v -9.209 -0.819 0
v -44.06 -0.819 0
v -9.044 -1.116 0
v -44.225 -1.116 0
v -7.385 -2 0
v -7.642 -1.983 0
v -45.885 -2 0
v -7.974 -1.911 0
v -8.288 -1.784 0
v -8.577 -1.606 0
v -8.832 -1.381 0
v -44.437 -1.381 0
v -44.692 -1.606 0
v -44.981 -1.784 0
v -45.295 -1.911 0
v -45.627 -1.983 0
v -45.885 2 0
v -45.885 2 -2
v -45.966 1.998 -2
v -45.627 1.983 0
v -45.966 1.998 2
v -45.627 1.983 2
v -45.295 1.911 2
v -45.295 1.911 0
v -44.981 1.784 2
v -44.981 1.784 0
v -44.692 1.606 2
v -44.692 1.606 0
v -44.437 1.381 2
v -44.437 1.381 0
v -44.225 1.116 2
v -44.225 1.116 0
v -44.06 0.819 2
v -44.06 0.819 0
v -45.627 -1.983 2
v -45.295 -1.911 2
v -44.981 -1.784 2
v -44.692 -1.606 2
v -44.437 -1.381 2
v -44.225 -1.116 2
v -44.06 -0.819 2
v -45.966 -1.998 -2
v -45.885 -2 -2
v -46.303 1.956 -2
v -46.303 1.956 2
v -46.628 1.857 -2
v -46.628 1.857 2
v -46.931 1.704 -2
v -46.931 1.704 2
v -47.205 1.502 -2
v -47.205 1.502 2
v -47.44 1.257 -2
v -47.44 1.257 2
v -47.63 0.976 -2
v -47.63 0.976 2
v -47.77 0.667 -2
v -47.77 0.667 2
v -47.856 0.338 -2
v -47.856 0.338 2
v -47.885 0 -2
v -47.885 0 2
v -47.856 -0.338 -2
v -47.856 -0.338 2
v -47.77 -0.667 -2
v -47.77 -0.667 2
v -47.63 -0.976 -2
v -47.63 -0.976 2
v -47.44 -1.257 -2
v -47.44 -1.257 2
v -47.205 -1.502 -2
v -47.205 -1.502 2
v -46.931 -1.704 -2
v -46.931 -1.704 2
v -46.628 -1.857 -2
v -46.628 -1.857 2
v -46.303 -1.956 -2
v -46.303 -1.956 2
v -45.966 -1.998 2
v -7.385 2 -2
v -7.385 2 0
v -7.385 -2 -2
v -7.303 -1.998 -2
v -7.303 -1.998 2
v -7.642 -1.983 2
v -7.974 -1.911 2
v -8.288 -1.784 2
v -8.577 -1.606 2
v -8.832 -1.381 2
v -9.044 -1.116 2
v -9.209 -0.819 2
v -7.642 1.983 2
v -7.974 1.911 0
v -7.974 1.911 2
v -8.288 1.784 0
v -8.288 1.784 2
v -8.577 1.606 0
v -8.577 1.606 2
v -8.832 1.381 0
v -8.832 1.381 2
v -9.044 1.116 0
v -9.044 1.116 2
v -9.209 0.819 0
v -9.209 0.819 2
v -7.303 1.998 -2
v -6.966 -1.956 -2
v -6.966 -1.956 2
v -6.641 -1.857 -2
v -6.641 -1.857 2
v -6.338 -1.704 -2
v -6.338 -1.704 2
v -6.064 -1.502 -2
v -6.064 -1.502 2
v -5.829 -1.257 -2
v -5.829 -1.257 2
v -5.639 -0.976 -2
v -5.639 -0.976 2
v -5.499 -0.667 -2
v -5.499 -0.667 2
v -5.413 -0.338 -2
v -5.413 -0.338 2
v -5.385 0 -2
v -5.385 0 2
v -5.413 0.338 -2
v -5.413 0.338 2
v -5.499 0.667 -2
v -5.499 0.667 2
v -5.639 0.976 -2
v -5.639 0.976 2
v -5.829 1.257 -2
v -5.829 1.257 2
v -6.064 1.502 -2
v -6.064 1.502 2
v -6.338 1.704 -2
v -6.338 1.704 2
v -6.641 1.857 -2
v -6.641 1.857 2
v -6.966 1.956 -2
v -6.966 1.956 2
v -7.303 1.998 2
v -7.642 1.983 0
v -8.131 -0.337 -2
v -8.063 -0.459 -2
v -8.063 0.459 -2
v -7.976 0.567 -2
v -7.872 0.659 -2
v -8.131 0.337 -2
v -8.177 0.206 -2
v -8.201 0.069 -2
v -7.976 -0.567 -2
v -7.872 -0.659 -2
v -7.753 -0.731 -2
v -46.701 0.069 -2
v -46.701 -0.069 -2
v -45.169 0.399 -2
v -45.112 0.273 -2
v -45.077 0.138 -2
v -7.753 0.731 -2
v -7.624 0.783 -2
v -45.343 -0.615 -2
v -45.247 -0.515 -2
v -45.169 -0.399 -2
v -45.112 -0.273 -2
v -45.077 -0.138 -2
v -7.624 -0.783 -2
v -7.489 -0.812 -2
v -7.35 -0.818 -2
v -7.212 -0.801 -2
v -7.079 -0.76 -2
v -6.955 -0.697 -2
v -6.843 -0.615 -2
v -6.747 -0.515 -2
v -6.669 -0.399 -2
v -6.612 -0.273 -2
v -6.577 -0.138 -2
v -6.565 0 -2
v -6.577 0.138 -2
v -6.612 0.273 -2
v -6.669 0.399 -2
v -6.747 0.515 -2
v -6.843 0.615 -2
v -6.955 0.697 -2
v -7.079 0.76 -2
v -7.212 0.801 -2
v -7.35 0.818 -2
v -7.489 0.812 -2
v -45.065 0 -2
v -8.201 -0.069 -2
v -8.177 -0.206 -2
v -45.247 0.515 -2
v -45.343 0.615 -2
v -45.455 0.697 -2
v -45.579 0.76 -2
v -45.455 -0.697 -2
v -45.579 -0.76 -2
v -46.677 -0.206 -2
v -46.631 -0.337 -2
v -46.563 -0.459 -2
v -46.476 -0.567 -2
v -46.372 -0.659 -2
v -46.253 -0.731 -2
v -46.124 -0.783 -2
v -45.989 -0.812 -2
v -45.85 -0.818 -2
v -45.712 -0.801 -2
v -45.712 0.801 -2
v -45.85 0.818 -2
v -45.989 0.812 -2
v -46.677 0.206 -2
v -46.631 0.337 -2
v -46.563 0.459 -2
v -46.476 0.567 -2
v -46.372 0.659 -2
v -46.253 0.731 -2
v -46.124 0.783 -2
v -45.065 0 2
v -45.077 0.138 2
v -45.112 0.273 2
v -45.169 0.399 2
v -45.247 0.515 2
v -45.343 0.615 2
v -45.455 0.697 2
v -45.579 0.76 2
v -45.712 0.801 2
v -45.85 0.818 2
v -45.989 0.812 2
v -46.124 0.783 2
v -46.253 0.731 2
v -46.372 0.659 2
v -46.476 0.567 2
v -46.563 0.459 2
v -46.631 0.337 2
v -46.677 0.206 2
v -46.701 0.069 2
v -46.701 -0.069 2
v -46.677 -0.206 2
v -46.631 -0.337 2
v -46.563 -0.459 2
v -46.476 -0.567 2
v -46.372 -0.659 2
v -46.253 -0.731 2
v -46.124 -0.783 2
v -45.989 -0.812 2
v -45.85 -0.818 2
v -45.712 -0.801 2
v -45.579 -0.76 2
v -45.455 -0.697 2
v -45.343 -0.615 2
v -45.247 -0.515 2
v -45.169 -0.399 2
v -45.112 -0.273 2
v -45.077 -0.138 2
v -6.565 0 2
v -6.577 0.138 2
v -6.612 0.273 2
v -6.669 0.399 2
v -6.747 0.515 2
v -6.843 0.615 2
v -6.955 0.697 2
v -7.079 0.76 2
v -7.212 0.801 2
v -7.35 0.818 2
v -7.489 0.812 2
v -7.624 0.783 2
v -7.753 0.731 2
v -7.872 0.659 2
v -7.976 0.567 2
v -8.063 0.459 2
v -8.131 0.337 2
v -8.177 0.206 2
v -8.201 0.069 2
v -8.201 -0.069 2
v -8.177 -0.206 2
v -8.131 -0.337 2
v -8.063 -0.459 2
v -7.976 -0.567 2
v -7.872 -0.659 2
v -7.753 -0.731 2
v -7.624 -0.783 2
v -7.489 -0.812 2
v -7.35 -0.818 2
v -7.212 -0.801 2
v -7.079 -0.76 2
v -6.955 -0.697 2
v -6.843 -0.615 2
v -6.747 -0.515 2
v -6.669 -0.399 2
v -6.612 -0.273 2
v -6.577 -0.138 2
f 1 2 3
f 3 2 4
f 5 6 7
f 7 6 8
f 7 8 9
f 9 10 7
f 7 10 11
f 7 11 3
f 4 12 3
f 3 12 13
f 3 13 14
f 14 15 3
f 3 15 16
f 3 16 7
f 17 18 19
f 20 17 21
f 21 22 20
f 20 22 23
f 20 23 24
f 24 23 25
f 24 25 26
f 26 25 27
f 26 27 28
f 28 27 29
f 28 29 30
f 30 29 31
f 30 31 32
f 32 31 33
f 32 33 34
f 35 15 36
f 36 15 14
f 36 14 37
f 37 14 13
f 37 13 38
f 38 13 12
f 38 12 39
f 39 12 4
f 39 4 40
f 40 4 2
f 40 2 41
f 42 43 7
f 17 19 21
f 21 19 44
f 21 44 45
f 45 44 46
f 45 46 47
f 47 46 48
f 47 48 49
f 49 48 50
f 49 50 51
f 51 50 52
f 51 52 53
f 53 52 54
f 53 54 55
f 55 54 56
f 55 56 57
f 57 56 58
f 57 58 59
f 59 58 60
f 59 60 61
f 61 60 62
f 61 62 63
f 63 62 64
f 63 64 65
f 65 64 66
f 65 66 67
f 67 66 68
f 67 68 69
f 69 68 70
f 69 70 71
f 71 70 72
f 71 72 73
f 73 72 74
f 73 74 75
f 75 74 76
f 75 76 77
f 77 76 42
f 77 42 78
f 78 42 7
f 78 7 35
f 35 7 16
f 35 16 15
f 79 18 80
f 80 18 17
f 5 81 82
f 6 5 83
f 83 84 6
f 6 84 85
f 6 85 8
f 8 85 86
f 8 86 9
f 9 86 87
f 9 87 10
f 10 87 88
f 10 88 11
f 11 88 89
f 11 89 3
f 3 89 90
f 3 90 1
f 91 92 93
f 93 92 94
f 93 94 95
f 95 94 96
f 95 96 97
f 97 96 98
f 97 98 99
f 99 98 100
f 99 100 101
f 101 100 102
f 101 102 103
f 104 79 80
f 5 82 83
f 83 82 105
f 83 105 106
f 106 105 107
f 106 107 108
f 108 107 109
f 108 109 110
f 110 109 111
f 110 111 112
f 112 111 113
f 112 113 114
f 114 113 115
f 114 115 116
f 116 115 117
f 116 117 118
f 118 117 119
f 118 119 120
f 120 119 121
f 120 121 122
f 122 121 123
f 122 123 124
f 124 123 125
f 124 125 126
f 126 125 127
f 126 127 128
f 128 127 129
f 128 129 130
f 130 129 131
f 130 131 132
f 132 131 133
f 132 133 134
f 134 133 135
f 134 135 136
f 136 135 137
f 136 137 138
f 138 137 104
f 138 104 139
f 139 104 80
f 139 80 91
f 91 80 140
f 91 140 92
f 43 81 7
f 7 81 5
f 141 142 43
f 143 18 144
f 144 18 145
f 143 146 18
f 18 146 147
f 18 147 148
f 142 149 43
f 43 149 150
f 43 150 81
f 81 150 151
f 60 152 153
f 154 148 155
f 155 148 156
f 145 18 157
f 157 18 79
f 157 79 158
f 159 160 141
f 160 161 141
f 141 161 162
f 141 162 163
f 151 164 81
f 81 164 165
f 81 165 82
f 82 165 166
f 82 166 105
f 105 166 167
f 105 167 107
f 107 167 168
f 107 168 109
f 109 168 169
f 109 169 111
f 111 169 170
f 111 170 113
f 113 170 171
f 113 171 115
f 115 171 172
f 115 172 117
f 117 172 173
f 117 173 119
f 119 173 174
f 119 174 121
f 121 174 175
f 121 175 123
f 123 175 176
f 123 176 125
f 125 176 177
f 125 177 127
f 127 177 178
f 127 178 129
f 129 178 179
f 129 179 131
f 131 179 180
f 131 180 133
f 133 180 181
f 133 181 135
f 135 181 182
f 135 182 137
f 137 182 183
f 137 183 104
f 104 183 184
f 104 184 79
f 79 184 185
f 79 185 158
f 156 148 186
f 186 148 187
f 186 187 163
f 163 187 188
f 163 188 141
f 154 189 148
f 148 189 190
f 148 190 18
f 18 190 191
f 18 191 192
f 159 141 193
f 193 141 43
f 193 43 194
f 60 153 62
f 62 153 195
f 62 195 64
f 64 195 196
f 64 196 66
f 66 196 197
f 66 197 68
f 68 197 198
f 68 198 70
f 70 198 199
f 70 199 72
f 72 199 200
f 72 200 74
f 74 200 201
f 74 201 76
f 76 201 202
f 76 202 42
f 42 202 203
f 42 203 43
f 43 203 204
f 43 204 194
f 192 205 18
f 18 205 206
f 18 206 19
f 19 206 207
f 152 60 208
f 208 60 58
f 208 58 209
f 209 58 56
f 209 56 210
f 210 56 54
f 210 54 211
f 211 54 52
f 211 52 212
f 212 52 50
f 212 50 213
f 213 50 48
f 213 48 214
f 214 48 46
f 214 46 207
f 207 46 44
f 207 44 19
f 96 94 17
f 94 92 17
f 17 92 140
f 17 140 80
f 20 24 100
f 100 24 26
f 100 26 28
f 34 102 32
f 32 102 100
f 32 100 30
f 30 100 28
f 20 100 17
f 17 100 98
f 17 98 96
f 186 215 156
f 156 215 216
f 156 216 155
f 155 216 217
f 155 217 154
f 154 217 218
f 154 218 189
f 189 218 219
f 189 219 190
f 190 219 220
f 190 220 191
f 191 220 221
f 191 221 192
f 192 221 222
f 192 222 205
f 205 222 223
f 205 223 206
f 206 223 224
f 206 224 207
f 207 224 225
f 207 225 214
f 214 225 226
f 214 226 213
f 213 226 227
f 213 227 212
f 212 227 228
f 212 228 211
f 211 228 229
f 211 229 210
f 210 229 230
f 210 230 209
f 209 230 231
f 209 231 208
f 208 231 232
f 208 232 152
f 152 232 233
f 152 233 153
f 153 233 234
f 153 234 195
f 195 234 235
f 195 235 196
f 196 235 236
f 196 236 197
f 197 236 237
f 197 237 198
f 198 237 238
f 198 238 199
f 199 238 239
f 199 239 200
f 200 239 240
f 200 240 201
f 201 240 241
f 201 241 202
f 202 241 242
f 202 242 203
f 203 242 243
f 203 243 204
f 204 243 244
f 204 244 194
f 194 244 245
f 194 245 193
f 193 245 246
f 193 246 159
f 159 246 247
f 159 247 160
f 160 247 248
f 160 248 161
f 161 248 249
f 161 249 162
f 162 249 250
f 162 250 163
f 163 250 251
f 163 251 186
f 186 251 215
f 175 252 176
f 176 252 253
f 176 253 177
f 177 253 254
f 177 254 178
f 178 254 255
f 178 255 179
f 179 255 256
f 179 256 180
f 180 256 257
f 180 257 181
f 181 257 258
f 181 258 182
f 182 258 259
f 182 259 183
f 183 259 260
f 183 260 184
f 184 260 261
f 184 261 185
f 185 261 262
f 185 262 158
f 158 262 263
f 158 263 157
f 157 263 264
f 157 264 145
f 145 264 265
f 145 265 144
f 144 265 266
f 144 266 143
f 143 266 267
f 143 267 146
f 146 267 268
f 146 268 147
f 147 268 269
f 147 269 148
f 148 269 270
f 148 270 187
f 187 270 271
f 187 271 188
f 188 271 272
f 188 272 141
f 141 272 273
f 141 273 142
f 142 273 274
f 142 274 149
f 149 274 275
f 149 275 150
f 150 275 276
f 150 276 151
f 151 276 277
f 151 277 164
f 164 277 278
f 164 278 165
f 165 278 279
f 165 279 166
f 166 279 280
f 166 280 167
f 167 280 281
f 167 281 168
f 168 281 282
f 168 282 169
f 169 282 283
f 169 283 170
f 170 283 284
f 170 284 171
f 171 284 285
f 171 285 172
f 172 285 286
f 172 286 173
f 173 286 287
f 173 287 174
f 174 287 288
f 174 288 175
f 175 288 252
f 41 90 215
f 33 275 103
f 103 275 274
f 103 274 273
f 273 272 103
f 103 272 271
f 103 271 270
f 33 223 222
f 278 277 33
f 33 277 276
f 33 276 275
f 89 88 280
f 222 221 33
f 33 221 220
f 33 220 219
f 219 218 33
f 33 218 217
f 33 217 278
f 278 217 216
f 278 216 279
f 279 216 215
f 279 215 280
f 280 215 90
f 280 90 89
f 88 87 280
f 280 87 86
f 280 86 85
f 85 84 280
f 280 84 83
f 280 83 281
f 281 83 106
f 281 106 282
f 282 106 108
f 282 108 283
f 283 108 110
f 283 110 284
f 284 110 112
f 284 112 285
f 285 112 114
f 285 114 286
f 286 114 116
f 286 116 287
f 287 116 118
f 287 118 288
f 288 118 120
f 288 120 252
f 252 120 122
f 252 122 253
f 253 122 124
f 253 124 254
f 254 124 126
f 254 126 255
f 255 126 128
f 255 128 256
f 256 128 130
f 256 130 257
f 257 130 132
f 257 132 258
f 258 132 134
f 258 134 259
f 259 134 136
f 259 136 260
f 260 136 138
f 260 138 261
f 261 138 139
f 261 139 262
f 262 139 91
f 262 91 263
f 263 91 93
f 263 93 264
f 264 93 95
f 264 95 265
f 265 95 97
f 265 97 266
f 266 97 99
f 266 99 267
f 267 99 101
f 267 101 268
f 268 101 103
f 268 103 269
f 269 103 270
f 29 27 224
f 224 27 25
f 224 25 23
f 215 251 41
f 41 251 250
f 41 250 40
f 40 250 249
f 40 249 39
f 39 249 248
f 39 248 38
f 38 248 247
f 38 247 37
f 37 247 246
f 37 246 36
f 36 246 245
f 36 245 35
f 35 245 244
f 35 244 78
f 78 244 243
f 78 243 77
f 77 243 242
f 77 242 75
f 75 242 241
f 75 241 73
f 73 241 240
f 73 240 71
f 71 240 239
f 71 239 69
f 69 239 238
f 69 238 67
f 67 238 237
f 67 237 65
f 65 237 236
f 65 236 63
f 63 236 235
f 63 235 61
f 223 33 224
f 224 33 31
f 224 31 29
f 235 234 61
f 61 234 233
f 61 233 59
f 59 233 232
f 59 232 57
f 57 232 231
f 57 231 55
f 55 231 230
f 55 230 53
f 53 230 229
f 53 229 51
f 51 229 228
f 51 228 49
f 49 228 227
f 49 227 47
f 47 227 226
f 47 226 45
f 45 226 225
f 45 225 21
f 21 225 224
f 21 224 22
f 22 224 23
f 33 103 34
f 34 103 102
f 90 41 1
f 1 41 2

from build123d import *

# Parameters (mm, degrees)
SKETCH_1_R      = 0.819112032
EXTRUDE_1_DEPTH = 2
EXTRUDE_START   = 2
SKETCH_2_R      = 0.819112032
EXTRUDE_2_DEPTH = 2


with BuildPart() as part:
    # 草图1 → 凸台-拉伸1 (new body)
    with BuildSketch(Plane.XY):
        with BuildLine():
            Line((-45.884505443, 2), (-7.384505443, 2))
            ThreePointArc((-7.384505443, 2), (-5.384505443, 0), (-7.384505443, -2))
            Line((-7.384505443, -2), (-45.884505443, -2))
            ThreePointArc((-45.884505443, -2), (-47.884505443, 0), (-45.884505443, 2))
        make_face()
        with Locations((-45.884505443, 0)):
            Circle(SKETCH_1_R, mode=Mode.SUBTRACT)
        with Locations((-7.384505443, 0)):
            Circle(SKETCH_1_R, mode=Mode.SUBTRACT)
    extrude(amount=-EXTRUDE_1_DEPTH)

    # 草图2 → 凸台-拉伸2 (add)
    with BuildSketch(Plane.XY.offset(EXTRUDE_START)):
        with BuildLine():
            Line((-44.059935499, 0.819112032), (-9.209075386, 0.819112032))
            ThreePointArc((-9.209075386, 0.819112032), (-5.384505443, 0), (-9.209075386, -0.819112032))
            Line((-9.209075386, -0.819112032), (-44.059935499, -0.819112032))
            ThreePointArc((-44.059935499, -0.819112032), (-47.884505443, 0), (-44.059935499, 0.819112032))
        make_face()
        with Locations((-45.884505443, 0)):
            Circle(SKETCH_2_R, mode=Mode.SUBTRACT)
        with Locations((-7.384505443, 0)):
            Circle(SKETCH_2_R, mode=Mode.SUBTRACT)
    extrude(amount=-EXTRUDE_2_DEPTH)


solid = part.part
